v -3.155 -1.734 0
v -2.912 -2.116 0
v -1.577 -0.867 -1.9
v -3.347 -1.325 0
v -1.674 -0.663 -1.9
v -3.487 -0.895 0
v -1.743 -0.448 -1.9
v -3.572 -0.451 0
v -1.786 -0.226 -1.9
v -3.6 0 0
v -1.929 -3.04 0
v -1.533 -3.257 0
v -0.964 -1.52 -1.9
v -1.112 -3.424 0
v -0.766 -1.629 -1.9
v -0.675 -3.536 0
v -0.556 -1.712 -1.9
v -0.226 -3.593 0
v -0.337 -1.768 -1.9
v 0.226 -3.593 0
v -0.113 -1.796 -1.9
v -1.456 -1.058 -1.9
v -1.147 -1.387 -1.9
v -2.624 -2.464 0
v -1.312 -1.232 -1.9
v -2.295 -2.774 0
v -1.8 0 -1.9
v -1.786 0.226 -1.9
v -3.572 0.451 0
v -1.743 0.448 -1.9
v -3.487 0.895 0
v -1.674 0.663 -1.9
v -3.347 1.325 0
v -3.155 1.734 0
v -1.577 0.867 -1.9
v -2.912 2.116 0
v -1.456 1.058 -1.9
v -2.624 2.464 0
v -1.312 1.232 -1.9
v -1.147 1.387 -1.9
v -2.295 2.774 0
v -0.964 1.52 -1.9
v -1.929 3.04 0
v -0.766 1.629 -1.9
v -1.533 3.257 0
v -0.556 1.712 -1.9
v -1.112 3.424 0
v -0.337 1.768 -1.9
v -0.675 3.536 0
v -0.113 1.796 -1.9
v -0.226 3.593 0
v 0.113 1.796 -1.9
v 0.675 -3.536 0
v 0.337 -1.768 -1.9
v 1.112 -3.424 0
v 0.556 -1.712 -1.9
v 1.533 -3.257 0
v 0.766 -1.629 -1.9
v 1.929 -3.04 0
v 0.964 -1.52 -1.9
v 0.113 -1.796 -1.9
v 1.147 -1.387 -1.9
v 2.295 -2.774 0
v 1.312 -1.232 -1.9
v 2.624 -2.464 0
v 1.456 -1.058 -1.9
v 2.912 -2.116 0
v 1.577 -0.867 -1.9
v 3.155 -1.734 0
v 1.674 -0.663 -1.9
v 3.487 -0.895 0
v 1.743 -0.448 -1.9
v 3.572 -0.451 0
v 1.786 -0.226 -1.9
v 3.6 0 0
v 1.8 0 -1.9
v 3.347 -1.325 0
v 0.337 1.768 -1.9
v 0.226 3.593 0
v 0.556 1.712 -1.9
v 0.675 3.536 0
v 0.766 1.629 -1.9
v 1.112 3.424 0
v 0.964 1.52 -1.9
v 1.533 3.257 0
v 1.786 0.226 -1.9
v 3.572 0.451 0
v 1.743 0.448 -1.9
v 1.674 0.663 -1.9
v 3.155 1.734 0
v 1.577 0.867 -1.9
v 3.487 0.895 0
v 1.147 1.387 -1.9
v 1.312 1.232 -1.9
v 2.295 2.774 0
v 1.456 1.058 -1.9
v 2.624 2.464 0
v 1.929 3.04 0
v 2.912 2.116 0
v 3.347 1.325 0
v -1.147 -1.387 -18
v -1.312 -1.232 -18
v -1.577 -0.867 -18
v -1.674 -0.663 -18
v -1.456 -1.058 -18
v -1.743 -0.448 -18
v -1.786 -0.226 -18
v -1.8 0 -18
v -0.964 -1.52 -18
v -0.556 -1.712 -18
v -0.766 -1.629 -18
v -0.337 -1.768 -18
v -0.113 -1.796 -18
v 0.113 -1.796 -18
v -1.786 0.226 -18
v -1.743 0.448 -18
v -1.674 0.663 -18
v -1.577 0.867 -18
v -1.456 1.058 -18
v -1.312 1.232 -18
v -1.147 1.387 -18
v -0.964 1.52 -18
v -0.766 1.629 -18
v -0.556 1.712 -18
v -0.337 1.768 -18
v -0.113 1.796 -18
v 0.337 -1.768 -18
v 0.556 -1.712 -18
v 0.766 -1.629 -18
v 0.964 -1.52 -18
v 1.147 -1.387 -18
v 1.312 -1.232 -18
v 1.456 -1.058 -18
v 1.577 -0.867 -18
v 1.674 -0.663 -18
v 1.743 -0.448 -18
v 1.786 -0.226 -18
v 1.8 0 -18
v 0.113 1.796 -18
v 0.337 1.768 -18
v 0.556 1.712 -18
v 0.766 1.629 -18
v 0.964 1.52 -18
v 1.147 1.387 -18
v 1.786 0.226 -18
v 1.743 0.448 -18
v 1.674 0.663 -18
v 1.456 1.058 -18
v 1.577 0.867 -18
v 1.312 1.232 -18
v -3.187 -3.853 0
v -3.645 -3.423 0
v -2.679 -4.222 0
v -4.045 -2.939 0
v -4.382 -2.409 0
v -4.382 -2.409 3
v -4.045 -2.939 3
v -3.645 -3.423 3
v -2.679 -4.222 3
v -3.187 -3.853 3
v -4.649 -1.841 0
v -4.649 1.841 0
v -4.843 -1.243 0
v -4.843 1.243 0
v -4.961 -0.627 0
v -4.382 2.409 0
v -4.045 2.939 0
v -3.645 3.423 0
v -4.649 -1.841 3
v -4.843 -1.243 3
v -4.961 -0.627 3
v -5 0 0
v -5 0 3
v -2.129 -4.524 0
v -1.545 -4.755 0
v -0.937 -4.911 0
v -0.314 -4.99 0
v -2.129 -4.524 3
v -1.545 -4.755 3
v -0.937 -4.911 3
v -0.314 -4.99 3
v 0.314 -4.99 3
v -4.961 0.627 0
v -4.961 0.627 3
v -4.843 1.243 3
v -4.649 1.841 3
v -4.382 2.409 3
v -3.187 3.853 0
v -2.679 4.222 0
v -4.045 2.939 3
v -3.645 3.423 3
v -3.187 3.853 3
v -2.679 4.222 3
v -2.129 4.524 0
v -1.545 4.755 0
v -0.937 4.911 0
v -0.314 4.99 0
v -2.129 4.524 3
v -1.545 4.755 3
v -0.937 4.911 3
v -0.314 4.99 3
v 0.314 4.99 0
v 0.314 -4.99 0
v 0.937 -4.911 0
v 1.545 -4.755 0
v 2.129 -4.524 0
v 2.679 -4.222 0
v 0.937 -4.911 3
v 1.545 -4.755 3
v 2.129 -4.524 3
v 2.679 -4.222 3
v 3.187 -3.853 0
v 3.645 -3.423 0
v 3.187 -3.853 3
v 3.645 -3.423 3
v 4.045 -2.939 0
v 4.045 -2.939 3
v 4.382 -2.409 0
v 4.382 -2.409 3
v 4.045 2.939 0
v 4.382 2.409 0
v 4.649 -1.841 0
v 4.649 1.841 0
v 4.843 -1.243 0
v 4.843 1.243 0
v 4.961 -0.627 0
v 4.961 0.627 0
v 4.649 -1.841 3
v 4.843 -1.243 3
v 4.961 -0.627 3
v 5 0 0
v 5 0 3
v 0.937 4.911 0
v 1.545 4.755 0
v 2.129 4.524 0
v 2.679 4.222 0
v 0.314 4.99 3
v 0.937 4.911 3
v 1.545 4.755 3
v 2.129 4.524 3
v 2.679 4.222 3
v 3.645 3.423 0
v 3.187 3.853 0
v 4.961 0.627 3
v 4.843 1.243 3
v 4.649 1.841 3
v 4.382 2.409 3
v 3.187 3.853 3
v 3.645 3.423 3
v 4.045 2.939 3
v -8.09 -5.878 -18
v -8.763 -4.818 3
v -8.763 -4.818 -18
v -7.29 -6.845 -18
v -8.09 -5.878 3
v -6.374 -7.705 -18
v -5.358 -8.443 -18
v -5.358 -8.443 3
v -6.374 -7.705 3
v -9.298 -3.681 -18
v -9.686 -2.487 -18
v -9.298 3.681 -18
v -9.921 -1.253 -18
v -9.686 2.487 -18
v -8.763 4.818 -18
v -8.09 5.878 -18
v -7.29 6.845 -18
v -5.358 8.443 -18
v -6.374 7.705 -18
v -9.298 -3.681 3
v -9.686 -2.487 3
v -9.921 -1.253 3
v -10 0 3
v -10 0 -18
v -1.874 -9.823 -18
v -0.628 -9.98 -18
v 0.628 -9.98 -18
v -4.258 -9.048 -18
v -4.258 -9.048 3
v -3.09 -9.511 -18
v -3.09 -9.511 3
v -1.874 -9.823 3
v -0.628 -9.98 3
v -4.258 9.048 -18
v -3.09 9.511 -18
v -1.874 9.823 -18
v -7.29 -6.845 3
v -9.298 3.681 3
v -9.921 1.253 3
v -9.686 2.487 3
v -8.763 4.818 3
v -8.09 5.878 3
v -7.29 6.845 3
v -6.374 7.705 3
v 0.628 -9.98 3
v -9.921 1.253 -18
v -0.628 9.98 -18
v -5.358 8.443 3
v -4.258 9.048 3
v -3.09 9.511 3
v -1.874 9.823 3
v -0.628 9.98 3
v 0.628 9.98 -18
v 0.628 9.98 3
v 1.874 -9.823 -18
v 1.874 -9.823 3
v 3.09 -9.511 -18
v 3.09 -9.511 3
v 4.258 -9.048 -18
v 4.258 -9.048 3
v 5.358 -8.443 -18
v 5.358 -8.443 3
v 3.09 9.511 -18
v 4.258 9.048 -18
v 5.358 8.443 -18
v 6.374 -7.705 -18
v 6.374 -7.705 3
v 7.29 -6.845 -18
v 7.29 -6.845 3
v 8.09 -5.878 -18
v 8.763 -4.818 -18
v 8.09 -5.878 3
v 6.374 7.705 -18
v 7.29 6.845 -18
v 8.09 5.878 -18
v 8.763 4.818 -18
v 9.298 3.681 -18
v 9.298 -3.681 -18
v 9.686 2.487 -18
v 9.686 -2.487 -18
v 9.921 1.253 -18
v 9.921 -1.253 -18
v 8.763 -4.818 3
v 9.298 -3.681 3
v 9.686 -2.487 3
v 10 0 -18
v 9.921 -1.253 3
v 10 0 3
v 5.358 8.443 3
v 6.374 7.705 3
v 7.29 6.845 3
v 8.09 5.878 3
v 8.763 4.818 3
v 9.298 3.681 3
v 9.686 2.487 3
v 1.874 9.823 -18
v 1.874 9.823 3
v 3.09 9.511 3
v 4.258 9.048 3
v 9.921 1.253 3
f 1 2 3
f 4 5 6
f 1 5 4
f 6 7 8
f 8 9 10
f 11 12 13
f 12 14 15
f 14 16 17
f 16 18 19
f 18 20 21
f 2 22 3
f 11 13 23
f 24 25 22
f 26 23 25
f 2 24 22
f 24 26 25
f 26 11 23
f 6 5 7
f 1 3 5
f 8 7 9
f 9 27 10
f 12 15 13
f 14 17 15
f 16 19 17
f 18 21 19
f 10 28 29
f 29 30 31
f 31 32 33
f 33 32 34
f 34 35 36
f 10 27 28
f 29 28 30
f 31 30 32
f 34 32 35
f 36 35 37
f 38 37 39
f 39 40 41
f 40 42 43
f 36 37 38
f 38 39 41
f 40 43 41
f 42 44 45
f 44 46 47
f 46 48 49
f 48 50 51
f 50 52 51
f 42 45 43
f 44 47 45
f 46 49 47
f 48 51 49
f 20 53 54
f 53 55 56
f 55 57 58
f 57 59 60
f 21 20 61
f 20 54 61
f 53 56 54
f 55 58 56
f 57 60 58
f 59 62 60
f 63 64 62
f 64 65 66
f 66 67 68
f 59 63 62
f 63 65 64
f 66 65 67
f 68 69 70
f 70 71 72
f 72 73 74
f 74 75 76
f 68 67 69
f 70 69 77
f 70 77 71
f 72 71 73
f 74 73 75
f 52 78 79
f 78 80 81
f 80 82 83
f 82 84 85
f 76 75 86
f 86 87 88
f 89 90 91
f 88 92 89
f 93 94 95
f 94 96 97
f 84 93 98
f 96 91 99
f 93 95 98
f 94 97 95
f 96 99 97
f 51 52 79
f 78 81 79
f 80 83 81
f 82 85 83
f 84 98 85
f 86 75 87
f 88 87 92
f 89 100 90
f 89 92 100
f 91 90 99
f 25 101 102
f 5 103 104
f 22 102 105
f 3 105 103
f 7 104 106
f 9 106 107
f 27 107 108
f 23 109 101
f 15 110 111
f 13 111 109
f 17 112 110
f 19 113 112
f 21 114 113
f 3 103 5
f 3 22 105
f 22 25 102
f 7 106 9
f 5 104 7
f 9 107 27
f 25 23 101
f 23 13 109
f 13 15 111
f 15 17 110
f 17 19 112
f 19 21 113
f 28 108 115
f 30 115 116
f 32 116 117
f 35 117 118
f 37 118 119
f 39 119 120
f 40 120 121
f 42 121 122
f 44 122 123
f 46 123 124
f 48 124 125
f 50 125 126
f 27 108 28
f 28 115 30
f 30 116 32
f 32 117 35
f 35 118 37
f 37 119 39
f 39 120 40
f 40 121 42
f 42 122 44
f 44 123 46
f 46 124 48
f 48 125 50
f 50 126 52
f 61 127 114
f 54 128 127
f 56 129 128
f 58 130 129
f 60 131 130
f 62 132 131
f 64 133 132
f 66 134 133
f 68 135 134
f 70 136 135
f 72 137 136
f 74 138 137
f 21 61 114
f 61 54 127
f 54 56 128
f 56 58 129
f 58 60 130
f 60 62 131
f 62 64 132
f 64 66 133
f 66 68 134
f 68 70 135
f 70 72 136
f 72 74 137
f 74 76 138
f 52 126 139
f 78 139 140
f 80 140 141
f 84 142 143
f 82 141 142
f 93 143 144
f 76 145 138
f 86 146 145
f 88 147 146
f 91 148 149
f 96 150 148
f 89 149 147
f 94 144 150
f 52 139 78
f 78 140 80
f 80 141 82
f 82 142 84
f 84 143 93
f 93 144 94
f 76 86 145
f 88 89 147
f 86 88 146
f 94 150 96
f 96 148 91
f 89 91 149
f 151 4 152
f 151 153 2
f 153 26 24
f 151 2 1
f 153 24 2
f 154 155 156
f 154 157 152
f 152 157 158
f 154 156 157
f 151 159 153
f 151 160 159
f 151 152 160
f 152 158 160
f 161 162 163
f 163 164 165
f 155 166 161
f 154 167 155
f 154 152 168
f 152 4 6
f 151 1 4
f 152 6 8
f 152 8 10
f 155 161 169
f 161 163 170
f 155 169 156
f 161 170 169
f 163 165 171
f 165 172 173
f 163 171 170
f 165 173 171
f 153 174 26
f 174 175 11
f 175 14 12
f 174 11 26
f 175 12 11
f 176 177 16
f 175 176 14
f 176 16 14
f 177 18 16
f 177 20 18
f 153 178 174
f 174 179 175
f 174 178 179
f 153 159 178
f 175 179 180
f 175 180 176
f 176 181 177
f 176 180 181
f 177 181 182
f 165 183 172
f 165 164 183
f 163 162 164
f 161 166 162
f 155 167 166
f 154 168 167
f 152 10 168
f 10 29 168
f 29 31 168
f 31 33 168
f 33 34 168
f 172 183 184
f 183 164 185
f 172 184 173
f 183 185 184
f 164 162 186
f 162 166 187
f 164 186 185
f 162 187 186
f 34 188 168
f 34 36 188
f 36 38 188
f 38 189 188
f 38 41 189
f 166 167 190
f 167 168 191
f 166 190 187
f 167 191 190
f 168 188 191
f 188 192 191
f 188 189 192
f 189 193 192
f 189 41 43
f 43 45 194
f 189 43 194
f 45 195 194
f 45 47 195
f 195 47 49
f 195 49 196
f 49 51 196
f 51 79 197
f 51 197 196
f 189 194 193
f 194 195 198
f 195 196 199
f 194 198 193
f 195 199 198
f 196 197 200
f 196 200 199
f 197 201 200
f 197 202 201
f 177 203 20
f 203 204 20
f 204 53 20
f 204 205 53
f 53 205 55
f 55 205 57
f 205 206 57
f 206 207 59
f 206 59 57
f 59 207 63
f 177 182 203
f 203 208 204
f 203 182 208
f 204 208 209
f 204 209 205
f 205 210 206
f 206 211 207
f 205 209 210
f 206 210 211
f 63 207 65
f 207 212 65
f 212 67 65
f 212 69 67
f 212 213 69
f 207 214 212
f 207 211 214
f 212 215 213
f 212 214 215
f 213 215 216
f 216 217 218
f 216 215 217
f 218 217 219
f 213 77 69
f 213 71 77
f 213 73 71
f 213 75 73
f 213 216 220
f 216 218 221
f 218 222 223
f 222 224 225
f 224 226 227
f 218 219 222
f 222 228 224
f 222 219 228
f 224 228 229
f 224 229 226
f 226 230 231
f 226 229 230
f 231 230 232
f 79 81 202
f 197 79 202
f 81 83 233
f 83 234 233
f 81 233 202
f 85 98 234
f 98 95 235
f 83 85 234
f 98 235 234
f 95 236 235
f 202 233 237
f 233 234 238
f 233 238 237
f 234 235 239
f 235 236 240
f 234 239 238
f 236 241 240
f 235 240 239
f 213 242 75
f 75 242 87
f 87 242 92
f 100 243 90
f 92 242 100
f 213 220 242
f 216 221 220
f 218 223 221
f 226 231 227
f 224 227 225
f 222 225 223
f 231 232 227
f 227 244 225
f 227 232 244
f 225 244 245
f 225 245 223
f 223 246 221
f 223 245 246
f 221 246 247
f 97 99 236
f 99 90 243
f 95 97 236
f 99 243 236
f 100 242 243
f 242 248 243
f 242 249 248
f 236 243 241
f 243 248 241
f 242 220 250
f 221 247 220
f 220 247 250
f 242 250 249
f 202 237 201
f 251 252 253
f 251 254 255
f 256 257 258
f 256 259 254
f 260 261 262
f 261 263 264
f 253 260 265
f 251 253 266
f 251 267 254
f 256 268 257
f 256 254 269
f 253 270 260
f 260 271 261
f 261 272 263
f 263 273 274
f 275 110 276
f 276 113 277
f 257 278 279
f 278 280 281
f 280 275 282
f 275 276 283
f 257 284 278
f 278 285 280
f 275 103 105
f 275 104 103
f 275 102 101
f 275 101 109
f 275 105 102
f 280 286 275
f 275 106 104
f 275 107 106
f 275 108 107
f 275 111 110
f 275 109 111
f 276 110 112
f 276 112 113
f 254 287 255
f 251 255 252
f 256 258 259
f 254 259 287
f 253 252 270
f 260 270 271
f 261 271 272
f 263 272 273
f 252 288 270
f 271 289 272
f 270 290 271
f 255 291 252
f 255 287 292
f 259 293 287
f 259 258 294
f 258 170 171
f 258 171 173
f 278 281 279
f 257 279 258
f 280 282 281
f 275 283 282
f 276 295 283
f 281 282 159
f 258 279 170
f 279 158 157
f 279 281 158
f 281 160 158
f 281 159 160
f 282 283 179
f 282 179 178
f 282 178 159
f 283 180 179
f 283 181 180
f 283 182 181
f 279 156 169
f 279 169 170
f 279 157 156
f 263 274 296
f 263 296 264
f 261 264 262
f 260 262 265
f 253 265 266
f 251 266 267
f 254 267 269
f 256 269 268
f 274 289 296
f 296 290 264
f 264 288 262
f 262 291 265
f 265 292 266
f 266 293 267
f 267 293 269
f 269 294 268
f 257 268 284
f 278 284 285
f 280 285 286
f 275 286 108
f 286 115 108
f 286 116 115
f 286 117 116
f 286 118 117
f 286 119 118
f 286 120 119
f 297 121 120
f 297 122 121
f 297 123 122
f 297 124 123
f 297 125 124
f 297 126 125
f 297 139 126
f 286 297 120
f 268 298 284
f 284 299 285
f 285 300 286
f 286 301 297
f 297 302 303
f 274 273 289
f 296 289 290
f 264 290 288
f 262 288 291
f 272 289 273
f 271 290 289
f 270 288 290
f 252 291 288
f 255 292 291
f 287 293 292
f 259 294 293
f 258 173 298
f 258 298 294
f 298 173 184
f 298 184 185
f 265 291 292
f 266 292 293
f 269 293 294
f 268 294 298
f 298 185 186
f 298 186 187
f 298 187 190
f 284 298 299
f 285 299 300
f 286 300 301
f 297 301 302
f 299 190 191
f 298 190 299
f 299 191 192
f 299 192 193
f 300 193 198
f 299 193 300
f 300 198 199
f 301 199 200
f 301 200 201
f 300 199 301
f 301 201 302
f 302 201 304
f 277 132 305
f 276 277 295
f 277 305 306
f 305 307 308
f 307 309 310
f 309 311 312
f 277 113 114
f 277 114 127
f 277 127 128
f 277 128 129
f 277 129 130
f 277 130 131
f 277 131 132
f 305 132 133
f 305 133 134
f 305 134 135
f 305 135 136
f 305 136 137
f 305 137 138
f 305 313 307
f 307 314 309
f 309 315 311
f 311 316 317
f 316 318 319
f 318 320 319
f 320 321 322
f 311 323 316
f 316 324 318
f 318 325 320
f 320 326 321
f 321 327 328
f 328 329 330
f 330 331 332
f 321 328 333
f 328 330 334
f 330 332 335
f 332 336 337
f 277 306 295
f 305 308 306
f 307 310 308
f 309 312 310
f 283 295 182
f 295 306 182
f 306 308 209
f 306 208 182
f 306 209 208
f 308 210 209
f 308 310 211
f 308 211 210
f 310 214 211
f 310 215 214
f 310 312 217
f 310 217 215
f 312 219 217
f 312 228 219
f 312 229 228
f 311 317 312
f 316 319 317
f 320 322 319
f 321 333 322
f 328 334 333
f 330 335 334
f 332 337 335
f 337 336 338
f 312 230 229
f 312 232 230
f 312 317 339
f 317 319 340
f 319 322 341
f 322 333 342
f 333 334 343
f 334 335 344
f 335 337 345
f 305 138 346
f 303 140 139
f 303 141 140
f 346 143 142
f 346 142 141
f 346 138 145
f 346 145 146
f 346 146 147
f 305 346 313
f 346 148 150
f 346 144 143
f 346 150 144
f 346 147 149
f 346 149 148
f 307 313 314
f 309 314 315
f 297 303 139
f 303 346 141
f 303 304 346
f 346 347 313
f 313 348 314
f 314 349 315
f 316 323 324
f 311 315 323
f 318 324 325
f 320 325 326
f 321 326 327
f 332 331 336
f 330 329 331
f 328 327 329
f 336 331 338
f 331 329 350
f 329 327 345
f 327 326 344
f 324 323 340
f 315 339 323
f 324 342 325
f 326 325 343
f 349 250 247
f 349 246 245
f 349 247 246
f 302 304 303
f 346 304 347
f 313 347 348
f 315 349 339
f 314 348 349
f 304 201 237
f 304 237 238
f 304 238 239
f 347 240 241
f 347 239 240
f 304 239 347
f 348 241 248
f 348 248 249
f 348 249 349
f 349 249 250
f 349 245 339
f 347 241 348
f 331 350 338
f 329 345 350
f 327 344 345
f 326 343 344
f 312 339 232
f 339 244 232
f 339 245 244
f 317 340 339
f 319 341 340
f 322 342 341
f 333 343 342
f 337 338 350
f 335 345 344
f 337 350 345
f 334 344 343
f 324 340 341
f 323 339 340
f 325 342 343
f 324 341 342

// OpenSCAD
$fn = 50;


difference() {
	union() {
		translate(v = [0, 0, -18.0000000000]) {
			cylinder(h = 21, r = 10.0000000000);
		}
	}
	union() {
		translate(v = [0, 0, 0]) {
			rotate(a = [0, 0, 0]) {
				difference() {
					union() {
						translate(v = [0, 0, -21.0000000000]) {
							cylinder(h = 21, r = 1.5000000000);
						}
						translate(v = [0, 0, -1.9000000000]) {
							cylinder(h = 1.9000000000, r1 = 1.8000000000, r2 = 3.6000000000);
						}
						translate(v = [0, 0, -21.0000000000]) {
							cylinder(h = 21, r = 1.8000000000);
						}
						translate(v = [0, 0, -21.0000000000]) {
							cylinder(h = 21, r = 1.5000000000);
						}
					}
					union();
				}
			}
		}
		#cylinder(h = 3, r = 5.0000000000);
	}
}
